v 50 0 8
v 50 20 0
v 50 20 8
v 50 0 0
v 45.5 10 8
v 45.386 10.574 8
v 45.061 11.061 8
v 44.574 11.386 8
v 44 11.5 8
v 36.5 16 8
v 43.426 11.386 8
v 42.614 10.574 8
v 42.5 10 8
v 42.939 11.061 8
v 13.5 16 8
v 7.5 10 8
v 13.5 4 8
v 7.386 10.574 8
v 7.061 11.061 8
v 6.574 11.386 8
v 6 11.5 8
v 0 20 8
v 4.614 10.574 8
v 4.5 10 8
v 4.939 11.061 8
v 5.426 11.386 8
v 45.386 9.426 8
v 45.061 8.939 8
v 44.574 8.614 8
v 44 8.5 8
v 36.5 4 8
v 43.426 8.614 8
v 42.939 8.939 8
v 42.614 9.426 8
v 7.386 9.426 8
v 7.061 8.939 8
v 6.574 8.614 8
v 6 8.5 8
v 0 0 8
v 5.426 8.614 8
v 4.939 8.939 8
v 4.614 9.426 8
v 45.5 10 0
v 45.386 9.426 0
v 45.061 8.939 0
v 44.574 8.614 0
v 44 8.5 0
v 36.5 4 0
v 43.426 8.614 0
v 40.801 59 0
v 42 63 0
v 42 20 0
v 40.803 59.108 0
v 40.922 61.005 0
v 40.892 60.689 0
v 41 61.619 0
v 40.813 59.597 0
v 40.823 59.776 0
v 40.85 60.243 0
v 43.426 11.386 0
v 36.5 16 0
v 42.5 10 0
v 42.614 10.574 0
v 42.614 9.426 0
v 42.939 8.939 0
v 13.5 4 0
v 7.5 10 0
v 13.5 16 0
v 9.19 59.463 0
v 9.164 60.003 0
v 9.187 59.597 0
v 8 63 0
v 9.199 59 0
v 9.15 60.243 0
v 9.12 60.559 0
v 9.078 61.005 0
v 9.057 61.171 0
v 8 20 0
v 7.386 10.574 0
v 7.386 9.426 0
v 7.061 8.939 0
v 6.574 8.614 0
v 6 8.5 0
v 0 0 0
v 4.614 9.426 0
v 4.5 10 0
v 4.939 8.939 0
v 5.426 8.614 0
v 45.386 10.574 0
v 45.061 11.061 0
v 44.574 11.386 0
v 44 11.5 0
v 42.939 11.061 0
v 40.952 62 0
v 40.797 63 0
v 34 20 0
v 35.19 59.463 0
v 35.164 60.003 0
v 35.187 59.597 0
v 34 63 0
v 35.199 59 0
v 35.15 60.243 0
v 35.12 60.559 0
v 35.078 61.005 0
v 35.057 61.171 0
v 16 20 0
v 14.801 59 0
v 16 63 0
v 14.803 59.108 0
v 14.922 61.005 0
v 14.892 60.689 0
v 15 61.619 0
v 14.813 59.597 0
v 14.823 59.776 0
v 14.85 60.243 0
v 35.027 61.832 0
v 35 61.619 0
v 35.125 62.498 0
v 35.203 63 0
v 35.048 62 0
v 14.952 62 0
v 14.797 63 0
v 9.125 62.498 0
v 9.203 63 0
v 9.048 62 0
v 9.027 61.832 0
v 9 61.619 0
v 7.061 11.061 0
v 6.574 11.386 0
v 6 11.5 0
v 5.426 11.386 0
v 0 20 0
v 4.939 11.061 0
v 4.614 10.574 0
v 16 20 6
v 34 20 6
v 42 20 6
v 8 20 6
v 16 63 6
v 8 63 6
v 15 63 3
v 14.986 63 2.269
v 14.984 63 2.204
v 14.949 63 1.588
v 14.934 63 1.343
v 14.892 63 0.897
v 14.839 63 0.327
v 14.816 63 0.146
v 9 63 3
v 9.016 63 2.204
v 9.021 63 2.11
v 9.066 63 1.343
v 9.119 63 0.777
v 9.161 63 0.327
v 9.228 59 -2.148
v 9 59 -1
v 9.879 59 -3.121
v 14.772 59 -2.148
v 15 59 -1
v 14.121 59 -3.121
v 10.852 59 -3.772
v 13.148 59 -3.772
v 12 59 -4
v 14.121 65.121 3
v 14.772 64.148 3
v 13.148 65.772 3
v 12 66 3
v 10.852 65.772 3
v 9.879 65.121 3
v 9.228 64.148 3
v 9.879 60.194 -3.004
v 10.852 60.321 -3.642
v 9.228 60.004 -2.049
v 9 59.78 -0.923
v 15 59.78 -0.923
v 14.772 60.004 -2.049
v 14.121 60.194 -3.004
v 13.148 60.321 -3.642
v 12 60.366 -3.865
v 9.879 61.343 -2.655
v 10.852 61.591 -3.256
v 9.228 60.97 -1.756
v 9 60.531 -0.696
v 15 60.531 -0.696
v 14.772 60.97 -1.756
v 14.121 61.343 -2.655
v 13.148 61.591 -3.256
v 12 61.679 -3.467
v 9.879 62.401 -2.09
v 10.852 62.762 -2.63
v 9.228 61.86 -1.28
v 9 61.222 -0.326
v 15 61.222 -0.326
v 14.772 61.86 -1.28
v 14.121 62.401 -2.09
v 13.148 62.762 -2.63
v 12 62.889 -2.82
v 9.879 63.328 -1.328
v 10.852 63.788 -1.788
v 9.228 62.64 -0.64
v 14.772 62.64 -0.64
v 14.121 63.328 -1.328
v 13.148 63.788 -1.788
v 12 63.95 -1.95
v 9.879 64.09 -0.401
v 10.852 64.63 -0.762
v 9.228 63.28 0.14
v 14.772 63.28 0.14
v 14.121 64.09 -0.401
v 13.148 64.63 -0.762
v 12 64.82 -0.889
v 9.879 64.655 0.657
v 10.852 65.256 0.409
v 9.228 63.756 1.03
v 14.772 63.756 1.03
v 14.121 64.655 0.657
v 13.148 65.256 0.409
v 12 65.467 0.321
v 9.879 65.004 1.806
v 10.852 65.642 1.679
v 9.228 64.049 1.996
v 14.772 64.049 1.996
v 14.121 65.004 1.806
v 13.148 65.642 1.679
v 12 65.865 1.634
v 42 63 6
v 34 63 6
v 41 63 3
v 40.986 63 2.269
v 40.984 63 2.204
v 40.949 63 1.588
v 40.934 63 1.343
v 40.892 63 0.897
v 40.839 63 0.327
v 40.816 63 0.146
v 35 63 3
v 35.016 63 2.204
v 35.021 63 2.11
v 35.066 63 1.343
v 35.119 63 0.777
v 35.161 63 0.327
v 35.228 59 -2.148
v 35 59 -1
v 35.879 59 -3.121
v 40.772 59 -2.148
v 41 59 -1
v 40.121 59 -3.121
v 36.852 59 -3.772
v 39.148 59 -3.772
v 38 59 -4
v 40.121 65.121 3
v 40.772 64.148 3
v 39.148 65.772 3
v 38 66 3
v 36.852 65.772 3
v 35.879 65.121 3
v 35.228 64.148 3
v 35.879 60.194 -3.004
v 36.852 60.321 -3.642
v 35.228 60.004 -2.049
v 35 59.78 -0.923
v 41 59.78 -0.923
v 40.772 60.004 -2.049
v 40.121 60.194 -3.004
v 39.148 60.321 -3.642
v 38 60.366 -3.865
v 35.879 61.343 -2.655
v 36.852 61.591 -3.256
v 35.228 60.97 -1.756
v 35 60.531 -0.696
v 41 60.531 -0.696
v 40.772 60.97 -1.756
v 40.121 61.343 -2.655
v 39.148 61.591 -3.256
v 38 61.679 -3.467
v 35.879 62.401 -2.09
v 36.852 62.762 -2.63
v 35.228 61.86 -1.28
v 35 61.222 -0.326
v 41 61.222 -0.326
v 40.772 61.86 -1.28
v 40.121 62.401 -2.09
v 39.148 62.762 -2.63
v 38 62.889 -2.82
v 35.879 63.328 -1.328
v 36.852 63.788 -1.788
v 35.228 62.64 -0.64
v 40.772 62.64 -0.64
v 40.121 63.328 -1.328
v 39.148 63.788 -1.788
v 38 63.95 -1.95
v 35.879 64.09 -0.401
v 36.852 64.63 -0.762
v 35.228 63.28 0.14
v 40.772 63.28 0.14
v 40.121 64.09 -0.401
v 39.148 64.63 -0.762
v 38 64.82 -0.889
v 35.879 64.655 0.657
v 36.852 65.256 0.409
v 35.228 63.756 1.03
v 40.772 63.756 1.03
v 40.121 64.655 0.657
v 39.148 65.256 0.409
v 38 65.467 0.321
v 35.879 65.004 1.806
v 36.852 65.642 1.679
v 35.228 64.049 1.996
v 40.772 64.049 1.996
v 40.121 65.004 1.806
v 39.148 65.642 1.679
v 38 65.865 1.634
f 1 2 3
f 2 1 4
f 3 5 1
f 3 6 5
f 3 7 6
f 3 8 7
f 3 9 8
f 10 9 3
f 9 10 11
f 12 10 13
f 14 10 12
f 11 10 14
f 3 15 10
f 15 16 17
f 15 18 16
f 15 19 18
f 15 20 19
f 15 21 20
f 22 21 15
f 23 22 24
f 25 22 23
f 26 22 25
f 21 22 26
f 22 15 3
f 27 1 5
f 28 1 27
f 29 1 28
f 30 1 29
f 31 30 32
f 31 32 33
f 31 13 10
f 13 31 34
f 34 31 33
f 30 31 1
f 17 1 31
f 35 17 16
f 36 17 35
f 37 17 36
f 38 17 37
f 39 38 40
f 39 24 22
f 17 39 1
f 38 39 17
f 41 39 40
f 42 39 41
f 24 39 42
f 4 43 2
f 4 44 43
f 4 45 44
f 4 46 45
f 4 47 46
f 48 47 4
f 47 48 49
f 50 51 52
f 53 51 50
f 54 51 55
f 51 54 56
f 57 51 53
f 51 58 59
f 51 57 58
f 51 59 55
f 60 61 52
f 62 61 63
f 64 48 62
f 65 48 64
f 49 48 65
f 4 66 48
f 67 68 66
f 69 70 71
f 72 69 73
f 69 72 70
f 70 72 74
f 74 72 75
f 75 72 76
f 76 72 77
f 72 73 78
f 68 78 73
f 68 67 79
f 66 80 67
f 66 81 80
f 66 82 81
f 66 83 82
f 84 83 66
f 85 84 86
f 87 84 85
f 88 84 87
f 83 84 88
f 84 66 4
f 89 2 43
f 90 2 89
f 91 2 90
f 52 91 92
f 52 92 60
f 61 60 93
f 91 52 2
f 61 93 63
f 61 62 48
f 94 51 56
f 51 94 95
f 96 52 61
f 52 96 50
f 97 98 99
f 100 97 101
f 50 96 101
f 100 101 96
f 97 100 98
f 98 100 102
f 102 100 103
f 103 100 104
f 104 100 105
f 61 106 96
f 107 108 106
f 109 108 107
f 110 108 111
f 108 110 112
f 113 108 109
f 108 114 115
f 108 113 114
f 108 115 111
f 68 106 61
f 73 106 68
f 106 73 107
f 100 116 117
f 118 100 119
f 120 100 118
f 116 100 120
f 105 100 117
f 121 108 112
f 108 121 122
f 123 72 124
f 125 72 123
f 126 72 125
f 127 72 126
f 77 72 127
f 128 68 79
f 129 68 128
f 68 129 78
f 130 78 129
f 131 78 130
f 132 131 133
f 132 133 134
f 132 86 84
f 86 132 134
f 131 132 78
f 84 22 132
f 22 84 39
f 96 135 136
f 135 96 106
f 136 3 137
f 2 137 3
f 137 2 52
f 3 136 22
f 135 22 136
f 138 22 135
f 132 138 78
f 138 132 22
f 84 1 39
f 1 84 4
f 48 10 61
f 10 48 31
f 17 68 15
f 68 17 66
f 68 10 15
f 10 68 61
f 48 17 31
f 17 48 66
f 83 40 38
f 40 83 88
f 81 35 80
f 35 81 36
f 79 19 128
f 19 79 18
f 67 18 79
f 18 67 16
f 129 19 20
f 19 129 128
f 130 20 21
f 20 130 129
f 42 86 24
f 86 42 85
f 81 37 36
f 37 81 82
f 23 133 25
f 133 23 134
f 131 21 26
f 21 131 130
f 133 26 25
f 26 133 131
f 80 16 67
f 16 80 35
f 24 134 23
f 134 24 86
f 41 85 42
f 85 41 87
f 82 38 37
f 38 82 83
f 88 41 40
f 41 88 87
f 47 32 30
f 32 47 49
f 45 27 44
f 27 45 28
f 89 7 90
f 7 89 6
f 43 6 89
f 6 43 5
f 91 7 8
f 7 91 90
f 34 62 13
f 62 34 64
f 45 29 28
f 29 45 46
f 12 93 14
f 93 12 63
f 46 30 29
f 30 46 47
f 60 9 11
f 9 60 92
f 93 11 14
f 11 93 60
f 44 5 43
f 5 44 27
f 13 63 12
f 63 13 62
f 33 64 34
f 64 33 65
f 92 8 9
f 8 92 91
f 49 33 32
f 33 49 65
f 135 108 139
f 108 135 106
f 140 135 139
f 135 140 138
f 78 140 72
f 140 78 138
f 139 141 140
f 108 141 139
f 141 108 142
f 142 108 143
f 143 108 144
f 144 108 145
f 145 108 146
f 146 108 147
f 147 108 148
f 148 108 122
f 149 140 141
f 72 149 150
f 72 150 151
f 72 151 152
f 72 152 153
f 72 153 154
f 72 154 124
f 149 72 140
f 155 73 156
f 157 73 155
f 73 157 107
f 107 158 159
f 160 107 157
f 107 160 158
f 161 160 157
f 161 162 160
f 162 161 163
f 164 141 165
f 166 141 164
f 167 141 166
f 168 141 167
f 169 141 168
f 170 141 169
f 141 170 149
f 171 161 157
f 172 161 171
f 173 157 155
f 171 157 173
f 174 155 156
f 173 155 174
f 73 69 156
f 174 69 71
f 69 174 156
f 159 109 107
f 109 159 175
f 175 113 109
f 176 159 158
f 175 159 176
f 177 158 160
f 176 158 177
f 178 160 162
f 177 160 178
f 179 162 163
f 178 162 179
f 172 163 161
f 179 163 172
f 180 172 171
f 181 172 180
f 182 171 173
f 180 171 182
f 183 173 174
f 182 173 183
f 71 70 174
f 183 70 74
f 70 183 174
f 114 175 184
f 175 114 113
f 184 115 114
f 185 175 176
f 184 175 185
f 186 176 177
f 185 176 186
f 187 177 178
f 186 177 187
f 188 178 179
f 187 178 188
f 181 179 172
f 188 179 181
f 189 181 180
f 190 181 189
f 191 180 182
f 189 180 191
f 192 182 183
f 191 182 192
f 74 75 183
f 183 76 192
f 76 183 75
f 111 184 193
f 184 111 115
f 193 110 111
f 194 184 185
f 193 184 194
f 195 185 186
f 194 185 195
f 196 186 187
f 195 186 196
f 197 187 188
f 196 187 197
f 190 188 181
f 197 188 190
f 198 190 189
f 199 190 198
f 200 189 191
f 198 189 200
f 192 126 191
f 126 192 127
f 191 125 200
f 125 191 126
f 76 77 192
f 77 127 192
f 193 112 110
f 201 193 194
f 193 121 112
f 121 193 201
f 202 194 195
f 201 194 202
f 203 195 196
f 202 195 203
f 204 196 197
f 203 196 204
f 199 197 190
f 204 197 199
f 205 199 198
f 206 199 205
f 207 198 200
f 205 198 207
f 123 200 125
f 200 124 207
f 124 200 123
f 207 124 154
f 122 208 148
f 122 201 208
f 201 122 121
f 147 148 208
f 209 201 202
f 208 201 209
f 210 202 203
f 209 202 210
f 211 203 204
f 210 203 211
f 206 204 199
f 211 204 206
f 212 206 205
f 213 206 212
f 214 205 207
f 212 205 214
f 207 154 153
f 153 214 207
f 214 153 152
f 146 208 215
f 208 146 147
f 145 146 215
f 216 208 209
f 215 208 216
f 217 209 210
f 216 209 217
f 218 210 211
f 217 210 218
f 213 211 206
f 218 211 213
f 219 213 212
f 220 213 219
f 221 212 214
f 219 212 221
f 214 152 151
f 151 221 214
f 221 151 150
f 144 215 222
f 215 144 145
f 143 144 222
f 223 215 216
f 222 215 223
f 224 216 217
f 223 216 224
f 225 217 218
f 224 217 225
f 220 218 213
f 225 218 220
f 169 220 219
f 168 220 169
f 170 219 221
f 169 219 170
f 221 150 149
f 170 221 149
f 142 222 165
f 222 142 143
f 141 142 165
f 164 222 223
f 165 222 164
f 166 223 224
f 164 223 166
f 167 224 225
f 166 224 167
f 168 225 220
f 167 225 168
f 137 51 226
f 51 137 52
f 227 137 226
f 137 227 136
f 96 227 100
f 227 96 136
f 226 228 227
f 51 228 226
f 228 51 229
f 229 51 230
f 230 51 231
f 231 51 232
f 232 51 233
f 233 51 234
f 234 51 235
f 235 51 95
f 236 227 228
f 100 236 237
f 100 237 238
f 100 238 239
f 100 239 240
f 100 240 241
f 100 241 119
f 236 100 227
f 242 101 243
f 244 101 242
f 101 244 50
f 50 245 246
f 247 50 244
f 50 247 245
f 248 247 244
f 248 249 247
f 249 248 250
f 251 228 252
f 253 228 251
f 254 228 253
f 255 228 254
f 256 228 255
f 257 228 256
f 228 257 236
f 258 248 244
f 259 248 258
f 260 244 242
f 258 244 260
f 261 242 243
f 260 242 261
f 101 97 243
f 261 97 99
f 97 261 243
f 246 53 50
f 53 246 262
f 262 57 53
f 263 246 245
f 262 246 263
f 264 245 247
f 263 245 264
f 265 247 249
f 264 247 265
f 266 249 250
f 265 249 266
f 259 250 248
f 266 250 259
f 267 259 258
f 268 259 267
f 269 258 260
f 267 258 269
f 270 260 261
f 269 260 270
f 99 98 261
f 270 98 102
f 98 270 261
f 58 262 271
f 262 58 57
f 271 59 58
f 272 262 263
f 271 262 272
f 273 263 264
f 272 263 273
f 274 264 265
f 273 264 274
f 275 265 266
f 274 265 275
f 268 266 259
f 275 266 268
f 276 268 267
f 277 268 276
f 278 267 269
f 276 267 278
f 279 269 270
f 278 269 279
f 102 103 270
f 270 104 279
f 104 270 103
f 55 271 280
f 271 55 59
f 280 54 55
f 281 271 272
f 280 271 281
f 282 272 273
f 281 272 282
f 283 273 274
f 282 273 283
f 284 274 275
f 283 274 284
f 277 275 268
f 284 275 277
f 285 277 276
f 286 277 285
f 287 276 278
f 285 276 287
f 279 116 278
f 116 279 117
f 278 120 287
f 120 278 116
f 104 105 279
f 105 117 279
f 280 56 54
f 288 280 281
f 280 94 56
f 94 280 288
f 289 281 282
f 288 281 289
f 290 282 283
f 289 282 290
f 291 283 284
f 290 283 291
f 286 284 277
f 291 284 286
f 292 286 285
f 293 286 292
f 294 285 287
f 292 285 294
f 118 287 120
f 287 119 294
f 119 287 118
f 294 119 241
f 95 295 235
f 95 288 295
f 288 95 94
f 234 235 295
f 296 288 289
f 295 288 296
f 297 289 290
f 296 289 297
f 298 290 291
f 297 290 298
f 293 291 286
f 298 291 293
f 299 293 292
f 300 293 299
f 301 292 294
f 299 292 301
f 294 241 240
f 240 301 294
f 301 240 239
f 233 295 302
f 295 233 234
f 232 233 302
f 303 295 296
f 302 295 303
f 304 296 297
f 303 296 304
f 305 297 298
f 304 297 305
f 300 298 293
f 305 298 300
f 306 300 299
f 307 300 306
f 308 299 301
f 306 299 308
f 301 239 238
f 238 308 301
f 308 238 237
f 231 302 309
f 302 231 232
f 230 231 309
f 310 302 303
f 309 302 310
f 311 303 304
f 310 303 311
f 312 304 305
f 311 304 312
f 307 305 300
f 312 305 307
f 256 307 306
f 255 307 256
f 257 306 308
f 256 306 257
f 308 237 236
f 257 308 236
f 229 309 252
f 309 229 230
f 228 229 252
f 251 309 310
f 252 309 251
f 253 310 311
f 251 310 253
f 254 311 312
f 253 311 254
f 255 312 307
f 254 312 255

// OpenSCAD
// ============================================================
// PyroSat - Garra de Captura em Microgravidade
// Disciplina: PBML - Global Solution 2026 - FIAP
// Software: OpenSCAD (modelagem parametrica com variaveis)
//
// Contexto espacial:
// Mecanismo de Docking & Retrieval para nanossatelites PyroSat.
// A garra captura e trava componentes em ambiente de microgravidade
// onde forcas minimas podem deslocar objetos.
// ============================================================

// ── VARIAVEIS PARAMETRICAS ───────────────────────────────────
// Altere estes valores para ajustar toda a peca proporcionalmente

// Corpo principal
largura_corpo     = 50;   // mm - largura total da garra
profundidade_corpo = 20;  // mm - profundidade do corpo
altura_corpo      = 8;    // mm - espessura do corpo base

// Dedos da garra
comprimento_dedo  = 35;   // mm - comprimento de cada dedo
largura_dedo      = 8;    // mm - largura de cada dedo
altura_dedo       = 6;    // mm - espessura dos dedos
abertura_dedo     = 18;   // mm - espaco entre os dedos (onde captura)
curvatura_ponta   = 4;    // mm - raio de curvatura da ponta

// Encaixe servo 9g (dimensoes padrao do mercado)
servo_largura     = 23;   // mm - largura do corpo do servo
servo_profundidade = 12;  // mm - profundidade do corpo do servo
servo_altura      = 10;   // mm - profundidade do encaixe

// Furos de parafuso
raio_furo         = 1.5;  // mm - raio dos furos M3

// MODULO: CORPO PRINCIPAL ──────────────────────────────────
module corpo_principal() {
    difference() {
        // Bloco base
        cube([largura_corpo, profundidade_corpo, altura_corpo]);

        // Encaixe para o servo de 9g (centralizado)
        translate([(largura_corpo - servo_largura) / 2,
                   (profundidade_corpo - servo_profundidade) / 2,
                   -1])
            cube([servo_largura, servo_profundidade, servo_altura + 1]);

        // Furo de parafuso esquerdo
        translate([6, profundidade_corpo / 2, -1])
            cylinder(h = altura_corpo + 2, r = raio_furo, $fn = 16);

        // Furo de parafuso direito
        translate([largura_corpo - 6, profundidade_corpo / 2, -1])
            cylinder(h = altura_corpo + 2, r = raio_furo, $fn = 16);
    }
}

// MODULO: DEDO DA GARRA ────────────────────────────────────
module dedo(espelhado = false) {
    espelho = espelhado ? -1 : 1;

    translate([espelhado ? largura_corpo : 0, 0, 0])
    scale([espelho, 1, 1])
    union() {
        // Haste principal do dedo
        cube([largura_dedo, comprimento_dedo, altura_dedo]);

        // Ponta curva (gancho de captura - importante para microgravidade)
        translate([largura_dedo / 2,
                   comprimento_dedo - curvatura_ponta,
                   altura_dedo / 2])
            rotate([0, 90, 0])
            rotate_extrude(angle = 90, $fn = 32)
            translate([curvatura_ponta, 0, 0])
            circle(r = altura_dedo / 2, $fn = 16);
    }
}

// MODULO: SUPORTE CENTRAL ──────────────────────────────────
module suporte_central() {
    translate([(largura_corpo - abertura_dedo) / 2 - largura_dedo,
               profundidade_corpo,
               0])
        cube([largura_dedo, 8, altura_dedo]);

    translate([(largura_corpo + abertura_dedo) / 2,
               profundidade_corpo,
               0])
        cube([largura_dedo, 8, altura_dedo]);
}

// MONTAGEM FINAL ───────────────────────────────────────────
module garra_pyrosat() {
    union() {
        // Corpo principal com encaixe do servo
        corpo_principal();

        // Dedo esquerdo
        translate([(largura_corpo - abertura_dedo) / 2 - largura_dedo,
                   profundidade_corpo + 8,
                   0])
            dedo(espelhado = false);

        // Dedo direito (espelhado)
        translate([(largura_corpo + abertura_dedo) / 2,
                   profundidade_corpo + 8,
                   0])
            dedo(espelhado = false);

        // Suportes de conexao
        suporte_central();
    }
}

// RENDERIZAR ───────────────────────────────────────────────
garra_pyrosat();
